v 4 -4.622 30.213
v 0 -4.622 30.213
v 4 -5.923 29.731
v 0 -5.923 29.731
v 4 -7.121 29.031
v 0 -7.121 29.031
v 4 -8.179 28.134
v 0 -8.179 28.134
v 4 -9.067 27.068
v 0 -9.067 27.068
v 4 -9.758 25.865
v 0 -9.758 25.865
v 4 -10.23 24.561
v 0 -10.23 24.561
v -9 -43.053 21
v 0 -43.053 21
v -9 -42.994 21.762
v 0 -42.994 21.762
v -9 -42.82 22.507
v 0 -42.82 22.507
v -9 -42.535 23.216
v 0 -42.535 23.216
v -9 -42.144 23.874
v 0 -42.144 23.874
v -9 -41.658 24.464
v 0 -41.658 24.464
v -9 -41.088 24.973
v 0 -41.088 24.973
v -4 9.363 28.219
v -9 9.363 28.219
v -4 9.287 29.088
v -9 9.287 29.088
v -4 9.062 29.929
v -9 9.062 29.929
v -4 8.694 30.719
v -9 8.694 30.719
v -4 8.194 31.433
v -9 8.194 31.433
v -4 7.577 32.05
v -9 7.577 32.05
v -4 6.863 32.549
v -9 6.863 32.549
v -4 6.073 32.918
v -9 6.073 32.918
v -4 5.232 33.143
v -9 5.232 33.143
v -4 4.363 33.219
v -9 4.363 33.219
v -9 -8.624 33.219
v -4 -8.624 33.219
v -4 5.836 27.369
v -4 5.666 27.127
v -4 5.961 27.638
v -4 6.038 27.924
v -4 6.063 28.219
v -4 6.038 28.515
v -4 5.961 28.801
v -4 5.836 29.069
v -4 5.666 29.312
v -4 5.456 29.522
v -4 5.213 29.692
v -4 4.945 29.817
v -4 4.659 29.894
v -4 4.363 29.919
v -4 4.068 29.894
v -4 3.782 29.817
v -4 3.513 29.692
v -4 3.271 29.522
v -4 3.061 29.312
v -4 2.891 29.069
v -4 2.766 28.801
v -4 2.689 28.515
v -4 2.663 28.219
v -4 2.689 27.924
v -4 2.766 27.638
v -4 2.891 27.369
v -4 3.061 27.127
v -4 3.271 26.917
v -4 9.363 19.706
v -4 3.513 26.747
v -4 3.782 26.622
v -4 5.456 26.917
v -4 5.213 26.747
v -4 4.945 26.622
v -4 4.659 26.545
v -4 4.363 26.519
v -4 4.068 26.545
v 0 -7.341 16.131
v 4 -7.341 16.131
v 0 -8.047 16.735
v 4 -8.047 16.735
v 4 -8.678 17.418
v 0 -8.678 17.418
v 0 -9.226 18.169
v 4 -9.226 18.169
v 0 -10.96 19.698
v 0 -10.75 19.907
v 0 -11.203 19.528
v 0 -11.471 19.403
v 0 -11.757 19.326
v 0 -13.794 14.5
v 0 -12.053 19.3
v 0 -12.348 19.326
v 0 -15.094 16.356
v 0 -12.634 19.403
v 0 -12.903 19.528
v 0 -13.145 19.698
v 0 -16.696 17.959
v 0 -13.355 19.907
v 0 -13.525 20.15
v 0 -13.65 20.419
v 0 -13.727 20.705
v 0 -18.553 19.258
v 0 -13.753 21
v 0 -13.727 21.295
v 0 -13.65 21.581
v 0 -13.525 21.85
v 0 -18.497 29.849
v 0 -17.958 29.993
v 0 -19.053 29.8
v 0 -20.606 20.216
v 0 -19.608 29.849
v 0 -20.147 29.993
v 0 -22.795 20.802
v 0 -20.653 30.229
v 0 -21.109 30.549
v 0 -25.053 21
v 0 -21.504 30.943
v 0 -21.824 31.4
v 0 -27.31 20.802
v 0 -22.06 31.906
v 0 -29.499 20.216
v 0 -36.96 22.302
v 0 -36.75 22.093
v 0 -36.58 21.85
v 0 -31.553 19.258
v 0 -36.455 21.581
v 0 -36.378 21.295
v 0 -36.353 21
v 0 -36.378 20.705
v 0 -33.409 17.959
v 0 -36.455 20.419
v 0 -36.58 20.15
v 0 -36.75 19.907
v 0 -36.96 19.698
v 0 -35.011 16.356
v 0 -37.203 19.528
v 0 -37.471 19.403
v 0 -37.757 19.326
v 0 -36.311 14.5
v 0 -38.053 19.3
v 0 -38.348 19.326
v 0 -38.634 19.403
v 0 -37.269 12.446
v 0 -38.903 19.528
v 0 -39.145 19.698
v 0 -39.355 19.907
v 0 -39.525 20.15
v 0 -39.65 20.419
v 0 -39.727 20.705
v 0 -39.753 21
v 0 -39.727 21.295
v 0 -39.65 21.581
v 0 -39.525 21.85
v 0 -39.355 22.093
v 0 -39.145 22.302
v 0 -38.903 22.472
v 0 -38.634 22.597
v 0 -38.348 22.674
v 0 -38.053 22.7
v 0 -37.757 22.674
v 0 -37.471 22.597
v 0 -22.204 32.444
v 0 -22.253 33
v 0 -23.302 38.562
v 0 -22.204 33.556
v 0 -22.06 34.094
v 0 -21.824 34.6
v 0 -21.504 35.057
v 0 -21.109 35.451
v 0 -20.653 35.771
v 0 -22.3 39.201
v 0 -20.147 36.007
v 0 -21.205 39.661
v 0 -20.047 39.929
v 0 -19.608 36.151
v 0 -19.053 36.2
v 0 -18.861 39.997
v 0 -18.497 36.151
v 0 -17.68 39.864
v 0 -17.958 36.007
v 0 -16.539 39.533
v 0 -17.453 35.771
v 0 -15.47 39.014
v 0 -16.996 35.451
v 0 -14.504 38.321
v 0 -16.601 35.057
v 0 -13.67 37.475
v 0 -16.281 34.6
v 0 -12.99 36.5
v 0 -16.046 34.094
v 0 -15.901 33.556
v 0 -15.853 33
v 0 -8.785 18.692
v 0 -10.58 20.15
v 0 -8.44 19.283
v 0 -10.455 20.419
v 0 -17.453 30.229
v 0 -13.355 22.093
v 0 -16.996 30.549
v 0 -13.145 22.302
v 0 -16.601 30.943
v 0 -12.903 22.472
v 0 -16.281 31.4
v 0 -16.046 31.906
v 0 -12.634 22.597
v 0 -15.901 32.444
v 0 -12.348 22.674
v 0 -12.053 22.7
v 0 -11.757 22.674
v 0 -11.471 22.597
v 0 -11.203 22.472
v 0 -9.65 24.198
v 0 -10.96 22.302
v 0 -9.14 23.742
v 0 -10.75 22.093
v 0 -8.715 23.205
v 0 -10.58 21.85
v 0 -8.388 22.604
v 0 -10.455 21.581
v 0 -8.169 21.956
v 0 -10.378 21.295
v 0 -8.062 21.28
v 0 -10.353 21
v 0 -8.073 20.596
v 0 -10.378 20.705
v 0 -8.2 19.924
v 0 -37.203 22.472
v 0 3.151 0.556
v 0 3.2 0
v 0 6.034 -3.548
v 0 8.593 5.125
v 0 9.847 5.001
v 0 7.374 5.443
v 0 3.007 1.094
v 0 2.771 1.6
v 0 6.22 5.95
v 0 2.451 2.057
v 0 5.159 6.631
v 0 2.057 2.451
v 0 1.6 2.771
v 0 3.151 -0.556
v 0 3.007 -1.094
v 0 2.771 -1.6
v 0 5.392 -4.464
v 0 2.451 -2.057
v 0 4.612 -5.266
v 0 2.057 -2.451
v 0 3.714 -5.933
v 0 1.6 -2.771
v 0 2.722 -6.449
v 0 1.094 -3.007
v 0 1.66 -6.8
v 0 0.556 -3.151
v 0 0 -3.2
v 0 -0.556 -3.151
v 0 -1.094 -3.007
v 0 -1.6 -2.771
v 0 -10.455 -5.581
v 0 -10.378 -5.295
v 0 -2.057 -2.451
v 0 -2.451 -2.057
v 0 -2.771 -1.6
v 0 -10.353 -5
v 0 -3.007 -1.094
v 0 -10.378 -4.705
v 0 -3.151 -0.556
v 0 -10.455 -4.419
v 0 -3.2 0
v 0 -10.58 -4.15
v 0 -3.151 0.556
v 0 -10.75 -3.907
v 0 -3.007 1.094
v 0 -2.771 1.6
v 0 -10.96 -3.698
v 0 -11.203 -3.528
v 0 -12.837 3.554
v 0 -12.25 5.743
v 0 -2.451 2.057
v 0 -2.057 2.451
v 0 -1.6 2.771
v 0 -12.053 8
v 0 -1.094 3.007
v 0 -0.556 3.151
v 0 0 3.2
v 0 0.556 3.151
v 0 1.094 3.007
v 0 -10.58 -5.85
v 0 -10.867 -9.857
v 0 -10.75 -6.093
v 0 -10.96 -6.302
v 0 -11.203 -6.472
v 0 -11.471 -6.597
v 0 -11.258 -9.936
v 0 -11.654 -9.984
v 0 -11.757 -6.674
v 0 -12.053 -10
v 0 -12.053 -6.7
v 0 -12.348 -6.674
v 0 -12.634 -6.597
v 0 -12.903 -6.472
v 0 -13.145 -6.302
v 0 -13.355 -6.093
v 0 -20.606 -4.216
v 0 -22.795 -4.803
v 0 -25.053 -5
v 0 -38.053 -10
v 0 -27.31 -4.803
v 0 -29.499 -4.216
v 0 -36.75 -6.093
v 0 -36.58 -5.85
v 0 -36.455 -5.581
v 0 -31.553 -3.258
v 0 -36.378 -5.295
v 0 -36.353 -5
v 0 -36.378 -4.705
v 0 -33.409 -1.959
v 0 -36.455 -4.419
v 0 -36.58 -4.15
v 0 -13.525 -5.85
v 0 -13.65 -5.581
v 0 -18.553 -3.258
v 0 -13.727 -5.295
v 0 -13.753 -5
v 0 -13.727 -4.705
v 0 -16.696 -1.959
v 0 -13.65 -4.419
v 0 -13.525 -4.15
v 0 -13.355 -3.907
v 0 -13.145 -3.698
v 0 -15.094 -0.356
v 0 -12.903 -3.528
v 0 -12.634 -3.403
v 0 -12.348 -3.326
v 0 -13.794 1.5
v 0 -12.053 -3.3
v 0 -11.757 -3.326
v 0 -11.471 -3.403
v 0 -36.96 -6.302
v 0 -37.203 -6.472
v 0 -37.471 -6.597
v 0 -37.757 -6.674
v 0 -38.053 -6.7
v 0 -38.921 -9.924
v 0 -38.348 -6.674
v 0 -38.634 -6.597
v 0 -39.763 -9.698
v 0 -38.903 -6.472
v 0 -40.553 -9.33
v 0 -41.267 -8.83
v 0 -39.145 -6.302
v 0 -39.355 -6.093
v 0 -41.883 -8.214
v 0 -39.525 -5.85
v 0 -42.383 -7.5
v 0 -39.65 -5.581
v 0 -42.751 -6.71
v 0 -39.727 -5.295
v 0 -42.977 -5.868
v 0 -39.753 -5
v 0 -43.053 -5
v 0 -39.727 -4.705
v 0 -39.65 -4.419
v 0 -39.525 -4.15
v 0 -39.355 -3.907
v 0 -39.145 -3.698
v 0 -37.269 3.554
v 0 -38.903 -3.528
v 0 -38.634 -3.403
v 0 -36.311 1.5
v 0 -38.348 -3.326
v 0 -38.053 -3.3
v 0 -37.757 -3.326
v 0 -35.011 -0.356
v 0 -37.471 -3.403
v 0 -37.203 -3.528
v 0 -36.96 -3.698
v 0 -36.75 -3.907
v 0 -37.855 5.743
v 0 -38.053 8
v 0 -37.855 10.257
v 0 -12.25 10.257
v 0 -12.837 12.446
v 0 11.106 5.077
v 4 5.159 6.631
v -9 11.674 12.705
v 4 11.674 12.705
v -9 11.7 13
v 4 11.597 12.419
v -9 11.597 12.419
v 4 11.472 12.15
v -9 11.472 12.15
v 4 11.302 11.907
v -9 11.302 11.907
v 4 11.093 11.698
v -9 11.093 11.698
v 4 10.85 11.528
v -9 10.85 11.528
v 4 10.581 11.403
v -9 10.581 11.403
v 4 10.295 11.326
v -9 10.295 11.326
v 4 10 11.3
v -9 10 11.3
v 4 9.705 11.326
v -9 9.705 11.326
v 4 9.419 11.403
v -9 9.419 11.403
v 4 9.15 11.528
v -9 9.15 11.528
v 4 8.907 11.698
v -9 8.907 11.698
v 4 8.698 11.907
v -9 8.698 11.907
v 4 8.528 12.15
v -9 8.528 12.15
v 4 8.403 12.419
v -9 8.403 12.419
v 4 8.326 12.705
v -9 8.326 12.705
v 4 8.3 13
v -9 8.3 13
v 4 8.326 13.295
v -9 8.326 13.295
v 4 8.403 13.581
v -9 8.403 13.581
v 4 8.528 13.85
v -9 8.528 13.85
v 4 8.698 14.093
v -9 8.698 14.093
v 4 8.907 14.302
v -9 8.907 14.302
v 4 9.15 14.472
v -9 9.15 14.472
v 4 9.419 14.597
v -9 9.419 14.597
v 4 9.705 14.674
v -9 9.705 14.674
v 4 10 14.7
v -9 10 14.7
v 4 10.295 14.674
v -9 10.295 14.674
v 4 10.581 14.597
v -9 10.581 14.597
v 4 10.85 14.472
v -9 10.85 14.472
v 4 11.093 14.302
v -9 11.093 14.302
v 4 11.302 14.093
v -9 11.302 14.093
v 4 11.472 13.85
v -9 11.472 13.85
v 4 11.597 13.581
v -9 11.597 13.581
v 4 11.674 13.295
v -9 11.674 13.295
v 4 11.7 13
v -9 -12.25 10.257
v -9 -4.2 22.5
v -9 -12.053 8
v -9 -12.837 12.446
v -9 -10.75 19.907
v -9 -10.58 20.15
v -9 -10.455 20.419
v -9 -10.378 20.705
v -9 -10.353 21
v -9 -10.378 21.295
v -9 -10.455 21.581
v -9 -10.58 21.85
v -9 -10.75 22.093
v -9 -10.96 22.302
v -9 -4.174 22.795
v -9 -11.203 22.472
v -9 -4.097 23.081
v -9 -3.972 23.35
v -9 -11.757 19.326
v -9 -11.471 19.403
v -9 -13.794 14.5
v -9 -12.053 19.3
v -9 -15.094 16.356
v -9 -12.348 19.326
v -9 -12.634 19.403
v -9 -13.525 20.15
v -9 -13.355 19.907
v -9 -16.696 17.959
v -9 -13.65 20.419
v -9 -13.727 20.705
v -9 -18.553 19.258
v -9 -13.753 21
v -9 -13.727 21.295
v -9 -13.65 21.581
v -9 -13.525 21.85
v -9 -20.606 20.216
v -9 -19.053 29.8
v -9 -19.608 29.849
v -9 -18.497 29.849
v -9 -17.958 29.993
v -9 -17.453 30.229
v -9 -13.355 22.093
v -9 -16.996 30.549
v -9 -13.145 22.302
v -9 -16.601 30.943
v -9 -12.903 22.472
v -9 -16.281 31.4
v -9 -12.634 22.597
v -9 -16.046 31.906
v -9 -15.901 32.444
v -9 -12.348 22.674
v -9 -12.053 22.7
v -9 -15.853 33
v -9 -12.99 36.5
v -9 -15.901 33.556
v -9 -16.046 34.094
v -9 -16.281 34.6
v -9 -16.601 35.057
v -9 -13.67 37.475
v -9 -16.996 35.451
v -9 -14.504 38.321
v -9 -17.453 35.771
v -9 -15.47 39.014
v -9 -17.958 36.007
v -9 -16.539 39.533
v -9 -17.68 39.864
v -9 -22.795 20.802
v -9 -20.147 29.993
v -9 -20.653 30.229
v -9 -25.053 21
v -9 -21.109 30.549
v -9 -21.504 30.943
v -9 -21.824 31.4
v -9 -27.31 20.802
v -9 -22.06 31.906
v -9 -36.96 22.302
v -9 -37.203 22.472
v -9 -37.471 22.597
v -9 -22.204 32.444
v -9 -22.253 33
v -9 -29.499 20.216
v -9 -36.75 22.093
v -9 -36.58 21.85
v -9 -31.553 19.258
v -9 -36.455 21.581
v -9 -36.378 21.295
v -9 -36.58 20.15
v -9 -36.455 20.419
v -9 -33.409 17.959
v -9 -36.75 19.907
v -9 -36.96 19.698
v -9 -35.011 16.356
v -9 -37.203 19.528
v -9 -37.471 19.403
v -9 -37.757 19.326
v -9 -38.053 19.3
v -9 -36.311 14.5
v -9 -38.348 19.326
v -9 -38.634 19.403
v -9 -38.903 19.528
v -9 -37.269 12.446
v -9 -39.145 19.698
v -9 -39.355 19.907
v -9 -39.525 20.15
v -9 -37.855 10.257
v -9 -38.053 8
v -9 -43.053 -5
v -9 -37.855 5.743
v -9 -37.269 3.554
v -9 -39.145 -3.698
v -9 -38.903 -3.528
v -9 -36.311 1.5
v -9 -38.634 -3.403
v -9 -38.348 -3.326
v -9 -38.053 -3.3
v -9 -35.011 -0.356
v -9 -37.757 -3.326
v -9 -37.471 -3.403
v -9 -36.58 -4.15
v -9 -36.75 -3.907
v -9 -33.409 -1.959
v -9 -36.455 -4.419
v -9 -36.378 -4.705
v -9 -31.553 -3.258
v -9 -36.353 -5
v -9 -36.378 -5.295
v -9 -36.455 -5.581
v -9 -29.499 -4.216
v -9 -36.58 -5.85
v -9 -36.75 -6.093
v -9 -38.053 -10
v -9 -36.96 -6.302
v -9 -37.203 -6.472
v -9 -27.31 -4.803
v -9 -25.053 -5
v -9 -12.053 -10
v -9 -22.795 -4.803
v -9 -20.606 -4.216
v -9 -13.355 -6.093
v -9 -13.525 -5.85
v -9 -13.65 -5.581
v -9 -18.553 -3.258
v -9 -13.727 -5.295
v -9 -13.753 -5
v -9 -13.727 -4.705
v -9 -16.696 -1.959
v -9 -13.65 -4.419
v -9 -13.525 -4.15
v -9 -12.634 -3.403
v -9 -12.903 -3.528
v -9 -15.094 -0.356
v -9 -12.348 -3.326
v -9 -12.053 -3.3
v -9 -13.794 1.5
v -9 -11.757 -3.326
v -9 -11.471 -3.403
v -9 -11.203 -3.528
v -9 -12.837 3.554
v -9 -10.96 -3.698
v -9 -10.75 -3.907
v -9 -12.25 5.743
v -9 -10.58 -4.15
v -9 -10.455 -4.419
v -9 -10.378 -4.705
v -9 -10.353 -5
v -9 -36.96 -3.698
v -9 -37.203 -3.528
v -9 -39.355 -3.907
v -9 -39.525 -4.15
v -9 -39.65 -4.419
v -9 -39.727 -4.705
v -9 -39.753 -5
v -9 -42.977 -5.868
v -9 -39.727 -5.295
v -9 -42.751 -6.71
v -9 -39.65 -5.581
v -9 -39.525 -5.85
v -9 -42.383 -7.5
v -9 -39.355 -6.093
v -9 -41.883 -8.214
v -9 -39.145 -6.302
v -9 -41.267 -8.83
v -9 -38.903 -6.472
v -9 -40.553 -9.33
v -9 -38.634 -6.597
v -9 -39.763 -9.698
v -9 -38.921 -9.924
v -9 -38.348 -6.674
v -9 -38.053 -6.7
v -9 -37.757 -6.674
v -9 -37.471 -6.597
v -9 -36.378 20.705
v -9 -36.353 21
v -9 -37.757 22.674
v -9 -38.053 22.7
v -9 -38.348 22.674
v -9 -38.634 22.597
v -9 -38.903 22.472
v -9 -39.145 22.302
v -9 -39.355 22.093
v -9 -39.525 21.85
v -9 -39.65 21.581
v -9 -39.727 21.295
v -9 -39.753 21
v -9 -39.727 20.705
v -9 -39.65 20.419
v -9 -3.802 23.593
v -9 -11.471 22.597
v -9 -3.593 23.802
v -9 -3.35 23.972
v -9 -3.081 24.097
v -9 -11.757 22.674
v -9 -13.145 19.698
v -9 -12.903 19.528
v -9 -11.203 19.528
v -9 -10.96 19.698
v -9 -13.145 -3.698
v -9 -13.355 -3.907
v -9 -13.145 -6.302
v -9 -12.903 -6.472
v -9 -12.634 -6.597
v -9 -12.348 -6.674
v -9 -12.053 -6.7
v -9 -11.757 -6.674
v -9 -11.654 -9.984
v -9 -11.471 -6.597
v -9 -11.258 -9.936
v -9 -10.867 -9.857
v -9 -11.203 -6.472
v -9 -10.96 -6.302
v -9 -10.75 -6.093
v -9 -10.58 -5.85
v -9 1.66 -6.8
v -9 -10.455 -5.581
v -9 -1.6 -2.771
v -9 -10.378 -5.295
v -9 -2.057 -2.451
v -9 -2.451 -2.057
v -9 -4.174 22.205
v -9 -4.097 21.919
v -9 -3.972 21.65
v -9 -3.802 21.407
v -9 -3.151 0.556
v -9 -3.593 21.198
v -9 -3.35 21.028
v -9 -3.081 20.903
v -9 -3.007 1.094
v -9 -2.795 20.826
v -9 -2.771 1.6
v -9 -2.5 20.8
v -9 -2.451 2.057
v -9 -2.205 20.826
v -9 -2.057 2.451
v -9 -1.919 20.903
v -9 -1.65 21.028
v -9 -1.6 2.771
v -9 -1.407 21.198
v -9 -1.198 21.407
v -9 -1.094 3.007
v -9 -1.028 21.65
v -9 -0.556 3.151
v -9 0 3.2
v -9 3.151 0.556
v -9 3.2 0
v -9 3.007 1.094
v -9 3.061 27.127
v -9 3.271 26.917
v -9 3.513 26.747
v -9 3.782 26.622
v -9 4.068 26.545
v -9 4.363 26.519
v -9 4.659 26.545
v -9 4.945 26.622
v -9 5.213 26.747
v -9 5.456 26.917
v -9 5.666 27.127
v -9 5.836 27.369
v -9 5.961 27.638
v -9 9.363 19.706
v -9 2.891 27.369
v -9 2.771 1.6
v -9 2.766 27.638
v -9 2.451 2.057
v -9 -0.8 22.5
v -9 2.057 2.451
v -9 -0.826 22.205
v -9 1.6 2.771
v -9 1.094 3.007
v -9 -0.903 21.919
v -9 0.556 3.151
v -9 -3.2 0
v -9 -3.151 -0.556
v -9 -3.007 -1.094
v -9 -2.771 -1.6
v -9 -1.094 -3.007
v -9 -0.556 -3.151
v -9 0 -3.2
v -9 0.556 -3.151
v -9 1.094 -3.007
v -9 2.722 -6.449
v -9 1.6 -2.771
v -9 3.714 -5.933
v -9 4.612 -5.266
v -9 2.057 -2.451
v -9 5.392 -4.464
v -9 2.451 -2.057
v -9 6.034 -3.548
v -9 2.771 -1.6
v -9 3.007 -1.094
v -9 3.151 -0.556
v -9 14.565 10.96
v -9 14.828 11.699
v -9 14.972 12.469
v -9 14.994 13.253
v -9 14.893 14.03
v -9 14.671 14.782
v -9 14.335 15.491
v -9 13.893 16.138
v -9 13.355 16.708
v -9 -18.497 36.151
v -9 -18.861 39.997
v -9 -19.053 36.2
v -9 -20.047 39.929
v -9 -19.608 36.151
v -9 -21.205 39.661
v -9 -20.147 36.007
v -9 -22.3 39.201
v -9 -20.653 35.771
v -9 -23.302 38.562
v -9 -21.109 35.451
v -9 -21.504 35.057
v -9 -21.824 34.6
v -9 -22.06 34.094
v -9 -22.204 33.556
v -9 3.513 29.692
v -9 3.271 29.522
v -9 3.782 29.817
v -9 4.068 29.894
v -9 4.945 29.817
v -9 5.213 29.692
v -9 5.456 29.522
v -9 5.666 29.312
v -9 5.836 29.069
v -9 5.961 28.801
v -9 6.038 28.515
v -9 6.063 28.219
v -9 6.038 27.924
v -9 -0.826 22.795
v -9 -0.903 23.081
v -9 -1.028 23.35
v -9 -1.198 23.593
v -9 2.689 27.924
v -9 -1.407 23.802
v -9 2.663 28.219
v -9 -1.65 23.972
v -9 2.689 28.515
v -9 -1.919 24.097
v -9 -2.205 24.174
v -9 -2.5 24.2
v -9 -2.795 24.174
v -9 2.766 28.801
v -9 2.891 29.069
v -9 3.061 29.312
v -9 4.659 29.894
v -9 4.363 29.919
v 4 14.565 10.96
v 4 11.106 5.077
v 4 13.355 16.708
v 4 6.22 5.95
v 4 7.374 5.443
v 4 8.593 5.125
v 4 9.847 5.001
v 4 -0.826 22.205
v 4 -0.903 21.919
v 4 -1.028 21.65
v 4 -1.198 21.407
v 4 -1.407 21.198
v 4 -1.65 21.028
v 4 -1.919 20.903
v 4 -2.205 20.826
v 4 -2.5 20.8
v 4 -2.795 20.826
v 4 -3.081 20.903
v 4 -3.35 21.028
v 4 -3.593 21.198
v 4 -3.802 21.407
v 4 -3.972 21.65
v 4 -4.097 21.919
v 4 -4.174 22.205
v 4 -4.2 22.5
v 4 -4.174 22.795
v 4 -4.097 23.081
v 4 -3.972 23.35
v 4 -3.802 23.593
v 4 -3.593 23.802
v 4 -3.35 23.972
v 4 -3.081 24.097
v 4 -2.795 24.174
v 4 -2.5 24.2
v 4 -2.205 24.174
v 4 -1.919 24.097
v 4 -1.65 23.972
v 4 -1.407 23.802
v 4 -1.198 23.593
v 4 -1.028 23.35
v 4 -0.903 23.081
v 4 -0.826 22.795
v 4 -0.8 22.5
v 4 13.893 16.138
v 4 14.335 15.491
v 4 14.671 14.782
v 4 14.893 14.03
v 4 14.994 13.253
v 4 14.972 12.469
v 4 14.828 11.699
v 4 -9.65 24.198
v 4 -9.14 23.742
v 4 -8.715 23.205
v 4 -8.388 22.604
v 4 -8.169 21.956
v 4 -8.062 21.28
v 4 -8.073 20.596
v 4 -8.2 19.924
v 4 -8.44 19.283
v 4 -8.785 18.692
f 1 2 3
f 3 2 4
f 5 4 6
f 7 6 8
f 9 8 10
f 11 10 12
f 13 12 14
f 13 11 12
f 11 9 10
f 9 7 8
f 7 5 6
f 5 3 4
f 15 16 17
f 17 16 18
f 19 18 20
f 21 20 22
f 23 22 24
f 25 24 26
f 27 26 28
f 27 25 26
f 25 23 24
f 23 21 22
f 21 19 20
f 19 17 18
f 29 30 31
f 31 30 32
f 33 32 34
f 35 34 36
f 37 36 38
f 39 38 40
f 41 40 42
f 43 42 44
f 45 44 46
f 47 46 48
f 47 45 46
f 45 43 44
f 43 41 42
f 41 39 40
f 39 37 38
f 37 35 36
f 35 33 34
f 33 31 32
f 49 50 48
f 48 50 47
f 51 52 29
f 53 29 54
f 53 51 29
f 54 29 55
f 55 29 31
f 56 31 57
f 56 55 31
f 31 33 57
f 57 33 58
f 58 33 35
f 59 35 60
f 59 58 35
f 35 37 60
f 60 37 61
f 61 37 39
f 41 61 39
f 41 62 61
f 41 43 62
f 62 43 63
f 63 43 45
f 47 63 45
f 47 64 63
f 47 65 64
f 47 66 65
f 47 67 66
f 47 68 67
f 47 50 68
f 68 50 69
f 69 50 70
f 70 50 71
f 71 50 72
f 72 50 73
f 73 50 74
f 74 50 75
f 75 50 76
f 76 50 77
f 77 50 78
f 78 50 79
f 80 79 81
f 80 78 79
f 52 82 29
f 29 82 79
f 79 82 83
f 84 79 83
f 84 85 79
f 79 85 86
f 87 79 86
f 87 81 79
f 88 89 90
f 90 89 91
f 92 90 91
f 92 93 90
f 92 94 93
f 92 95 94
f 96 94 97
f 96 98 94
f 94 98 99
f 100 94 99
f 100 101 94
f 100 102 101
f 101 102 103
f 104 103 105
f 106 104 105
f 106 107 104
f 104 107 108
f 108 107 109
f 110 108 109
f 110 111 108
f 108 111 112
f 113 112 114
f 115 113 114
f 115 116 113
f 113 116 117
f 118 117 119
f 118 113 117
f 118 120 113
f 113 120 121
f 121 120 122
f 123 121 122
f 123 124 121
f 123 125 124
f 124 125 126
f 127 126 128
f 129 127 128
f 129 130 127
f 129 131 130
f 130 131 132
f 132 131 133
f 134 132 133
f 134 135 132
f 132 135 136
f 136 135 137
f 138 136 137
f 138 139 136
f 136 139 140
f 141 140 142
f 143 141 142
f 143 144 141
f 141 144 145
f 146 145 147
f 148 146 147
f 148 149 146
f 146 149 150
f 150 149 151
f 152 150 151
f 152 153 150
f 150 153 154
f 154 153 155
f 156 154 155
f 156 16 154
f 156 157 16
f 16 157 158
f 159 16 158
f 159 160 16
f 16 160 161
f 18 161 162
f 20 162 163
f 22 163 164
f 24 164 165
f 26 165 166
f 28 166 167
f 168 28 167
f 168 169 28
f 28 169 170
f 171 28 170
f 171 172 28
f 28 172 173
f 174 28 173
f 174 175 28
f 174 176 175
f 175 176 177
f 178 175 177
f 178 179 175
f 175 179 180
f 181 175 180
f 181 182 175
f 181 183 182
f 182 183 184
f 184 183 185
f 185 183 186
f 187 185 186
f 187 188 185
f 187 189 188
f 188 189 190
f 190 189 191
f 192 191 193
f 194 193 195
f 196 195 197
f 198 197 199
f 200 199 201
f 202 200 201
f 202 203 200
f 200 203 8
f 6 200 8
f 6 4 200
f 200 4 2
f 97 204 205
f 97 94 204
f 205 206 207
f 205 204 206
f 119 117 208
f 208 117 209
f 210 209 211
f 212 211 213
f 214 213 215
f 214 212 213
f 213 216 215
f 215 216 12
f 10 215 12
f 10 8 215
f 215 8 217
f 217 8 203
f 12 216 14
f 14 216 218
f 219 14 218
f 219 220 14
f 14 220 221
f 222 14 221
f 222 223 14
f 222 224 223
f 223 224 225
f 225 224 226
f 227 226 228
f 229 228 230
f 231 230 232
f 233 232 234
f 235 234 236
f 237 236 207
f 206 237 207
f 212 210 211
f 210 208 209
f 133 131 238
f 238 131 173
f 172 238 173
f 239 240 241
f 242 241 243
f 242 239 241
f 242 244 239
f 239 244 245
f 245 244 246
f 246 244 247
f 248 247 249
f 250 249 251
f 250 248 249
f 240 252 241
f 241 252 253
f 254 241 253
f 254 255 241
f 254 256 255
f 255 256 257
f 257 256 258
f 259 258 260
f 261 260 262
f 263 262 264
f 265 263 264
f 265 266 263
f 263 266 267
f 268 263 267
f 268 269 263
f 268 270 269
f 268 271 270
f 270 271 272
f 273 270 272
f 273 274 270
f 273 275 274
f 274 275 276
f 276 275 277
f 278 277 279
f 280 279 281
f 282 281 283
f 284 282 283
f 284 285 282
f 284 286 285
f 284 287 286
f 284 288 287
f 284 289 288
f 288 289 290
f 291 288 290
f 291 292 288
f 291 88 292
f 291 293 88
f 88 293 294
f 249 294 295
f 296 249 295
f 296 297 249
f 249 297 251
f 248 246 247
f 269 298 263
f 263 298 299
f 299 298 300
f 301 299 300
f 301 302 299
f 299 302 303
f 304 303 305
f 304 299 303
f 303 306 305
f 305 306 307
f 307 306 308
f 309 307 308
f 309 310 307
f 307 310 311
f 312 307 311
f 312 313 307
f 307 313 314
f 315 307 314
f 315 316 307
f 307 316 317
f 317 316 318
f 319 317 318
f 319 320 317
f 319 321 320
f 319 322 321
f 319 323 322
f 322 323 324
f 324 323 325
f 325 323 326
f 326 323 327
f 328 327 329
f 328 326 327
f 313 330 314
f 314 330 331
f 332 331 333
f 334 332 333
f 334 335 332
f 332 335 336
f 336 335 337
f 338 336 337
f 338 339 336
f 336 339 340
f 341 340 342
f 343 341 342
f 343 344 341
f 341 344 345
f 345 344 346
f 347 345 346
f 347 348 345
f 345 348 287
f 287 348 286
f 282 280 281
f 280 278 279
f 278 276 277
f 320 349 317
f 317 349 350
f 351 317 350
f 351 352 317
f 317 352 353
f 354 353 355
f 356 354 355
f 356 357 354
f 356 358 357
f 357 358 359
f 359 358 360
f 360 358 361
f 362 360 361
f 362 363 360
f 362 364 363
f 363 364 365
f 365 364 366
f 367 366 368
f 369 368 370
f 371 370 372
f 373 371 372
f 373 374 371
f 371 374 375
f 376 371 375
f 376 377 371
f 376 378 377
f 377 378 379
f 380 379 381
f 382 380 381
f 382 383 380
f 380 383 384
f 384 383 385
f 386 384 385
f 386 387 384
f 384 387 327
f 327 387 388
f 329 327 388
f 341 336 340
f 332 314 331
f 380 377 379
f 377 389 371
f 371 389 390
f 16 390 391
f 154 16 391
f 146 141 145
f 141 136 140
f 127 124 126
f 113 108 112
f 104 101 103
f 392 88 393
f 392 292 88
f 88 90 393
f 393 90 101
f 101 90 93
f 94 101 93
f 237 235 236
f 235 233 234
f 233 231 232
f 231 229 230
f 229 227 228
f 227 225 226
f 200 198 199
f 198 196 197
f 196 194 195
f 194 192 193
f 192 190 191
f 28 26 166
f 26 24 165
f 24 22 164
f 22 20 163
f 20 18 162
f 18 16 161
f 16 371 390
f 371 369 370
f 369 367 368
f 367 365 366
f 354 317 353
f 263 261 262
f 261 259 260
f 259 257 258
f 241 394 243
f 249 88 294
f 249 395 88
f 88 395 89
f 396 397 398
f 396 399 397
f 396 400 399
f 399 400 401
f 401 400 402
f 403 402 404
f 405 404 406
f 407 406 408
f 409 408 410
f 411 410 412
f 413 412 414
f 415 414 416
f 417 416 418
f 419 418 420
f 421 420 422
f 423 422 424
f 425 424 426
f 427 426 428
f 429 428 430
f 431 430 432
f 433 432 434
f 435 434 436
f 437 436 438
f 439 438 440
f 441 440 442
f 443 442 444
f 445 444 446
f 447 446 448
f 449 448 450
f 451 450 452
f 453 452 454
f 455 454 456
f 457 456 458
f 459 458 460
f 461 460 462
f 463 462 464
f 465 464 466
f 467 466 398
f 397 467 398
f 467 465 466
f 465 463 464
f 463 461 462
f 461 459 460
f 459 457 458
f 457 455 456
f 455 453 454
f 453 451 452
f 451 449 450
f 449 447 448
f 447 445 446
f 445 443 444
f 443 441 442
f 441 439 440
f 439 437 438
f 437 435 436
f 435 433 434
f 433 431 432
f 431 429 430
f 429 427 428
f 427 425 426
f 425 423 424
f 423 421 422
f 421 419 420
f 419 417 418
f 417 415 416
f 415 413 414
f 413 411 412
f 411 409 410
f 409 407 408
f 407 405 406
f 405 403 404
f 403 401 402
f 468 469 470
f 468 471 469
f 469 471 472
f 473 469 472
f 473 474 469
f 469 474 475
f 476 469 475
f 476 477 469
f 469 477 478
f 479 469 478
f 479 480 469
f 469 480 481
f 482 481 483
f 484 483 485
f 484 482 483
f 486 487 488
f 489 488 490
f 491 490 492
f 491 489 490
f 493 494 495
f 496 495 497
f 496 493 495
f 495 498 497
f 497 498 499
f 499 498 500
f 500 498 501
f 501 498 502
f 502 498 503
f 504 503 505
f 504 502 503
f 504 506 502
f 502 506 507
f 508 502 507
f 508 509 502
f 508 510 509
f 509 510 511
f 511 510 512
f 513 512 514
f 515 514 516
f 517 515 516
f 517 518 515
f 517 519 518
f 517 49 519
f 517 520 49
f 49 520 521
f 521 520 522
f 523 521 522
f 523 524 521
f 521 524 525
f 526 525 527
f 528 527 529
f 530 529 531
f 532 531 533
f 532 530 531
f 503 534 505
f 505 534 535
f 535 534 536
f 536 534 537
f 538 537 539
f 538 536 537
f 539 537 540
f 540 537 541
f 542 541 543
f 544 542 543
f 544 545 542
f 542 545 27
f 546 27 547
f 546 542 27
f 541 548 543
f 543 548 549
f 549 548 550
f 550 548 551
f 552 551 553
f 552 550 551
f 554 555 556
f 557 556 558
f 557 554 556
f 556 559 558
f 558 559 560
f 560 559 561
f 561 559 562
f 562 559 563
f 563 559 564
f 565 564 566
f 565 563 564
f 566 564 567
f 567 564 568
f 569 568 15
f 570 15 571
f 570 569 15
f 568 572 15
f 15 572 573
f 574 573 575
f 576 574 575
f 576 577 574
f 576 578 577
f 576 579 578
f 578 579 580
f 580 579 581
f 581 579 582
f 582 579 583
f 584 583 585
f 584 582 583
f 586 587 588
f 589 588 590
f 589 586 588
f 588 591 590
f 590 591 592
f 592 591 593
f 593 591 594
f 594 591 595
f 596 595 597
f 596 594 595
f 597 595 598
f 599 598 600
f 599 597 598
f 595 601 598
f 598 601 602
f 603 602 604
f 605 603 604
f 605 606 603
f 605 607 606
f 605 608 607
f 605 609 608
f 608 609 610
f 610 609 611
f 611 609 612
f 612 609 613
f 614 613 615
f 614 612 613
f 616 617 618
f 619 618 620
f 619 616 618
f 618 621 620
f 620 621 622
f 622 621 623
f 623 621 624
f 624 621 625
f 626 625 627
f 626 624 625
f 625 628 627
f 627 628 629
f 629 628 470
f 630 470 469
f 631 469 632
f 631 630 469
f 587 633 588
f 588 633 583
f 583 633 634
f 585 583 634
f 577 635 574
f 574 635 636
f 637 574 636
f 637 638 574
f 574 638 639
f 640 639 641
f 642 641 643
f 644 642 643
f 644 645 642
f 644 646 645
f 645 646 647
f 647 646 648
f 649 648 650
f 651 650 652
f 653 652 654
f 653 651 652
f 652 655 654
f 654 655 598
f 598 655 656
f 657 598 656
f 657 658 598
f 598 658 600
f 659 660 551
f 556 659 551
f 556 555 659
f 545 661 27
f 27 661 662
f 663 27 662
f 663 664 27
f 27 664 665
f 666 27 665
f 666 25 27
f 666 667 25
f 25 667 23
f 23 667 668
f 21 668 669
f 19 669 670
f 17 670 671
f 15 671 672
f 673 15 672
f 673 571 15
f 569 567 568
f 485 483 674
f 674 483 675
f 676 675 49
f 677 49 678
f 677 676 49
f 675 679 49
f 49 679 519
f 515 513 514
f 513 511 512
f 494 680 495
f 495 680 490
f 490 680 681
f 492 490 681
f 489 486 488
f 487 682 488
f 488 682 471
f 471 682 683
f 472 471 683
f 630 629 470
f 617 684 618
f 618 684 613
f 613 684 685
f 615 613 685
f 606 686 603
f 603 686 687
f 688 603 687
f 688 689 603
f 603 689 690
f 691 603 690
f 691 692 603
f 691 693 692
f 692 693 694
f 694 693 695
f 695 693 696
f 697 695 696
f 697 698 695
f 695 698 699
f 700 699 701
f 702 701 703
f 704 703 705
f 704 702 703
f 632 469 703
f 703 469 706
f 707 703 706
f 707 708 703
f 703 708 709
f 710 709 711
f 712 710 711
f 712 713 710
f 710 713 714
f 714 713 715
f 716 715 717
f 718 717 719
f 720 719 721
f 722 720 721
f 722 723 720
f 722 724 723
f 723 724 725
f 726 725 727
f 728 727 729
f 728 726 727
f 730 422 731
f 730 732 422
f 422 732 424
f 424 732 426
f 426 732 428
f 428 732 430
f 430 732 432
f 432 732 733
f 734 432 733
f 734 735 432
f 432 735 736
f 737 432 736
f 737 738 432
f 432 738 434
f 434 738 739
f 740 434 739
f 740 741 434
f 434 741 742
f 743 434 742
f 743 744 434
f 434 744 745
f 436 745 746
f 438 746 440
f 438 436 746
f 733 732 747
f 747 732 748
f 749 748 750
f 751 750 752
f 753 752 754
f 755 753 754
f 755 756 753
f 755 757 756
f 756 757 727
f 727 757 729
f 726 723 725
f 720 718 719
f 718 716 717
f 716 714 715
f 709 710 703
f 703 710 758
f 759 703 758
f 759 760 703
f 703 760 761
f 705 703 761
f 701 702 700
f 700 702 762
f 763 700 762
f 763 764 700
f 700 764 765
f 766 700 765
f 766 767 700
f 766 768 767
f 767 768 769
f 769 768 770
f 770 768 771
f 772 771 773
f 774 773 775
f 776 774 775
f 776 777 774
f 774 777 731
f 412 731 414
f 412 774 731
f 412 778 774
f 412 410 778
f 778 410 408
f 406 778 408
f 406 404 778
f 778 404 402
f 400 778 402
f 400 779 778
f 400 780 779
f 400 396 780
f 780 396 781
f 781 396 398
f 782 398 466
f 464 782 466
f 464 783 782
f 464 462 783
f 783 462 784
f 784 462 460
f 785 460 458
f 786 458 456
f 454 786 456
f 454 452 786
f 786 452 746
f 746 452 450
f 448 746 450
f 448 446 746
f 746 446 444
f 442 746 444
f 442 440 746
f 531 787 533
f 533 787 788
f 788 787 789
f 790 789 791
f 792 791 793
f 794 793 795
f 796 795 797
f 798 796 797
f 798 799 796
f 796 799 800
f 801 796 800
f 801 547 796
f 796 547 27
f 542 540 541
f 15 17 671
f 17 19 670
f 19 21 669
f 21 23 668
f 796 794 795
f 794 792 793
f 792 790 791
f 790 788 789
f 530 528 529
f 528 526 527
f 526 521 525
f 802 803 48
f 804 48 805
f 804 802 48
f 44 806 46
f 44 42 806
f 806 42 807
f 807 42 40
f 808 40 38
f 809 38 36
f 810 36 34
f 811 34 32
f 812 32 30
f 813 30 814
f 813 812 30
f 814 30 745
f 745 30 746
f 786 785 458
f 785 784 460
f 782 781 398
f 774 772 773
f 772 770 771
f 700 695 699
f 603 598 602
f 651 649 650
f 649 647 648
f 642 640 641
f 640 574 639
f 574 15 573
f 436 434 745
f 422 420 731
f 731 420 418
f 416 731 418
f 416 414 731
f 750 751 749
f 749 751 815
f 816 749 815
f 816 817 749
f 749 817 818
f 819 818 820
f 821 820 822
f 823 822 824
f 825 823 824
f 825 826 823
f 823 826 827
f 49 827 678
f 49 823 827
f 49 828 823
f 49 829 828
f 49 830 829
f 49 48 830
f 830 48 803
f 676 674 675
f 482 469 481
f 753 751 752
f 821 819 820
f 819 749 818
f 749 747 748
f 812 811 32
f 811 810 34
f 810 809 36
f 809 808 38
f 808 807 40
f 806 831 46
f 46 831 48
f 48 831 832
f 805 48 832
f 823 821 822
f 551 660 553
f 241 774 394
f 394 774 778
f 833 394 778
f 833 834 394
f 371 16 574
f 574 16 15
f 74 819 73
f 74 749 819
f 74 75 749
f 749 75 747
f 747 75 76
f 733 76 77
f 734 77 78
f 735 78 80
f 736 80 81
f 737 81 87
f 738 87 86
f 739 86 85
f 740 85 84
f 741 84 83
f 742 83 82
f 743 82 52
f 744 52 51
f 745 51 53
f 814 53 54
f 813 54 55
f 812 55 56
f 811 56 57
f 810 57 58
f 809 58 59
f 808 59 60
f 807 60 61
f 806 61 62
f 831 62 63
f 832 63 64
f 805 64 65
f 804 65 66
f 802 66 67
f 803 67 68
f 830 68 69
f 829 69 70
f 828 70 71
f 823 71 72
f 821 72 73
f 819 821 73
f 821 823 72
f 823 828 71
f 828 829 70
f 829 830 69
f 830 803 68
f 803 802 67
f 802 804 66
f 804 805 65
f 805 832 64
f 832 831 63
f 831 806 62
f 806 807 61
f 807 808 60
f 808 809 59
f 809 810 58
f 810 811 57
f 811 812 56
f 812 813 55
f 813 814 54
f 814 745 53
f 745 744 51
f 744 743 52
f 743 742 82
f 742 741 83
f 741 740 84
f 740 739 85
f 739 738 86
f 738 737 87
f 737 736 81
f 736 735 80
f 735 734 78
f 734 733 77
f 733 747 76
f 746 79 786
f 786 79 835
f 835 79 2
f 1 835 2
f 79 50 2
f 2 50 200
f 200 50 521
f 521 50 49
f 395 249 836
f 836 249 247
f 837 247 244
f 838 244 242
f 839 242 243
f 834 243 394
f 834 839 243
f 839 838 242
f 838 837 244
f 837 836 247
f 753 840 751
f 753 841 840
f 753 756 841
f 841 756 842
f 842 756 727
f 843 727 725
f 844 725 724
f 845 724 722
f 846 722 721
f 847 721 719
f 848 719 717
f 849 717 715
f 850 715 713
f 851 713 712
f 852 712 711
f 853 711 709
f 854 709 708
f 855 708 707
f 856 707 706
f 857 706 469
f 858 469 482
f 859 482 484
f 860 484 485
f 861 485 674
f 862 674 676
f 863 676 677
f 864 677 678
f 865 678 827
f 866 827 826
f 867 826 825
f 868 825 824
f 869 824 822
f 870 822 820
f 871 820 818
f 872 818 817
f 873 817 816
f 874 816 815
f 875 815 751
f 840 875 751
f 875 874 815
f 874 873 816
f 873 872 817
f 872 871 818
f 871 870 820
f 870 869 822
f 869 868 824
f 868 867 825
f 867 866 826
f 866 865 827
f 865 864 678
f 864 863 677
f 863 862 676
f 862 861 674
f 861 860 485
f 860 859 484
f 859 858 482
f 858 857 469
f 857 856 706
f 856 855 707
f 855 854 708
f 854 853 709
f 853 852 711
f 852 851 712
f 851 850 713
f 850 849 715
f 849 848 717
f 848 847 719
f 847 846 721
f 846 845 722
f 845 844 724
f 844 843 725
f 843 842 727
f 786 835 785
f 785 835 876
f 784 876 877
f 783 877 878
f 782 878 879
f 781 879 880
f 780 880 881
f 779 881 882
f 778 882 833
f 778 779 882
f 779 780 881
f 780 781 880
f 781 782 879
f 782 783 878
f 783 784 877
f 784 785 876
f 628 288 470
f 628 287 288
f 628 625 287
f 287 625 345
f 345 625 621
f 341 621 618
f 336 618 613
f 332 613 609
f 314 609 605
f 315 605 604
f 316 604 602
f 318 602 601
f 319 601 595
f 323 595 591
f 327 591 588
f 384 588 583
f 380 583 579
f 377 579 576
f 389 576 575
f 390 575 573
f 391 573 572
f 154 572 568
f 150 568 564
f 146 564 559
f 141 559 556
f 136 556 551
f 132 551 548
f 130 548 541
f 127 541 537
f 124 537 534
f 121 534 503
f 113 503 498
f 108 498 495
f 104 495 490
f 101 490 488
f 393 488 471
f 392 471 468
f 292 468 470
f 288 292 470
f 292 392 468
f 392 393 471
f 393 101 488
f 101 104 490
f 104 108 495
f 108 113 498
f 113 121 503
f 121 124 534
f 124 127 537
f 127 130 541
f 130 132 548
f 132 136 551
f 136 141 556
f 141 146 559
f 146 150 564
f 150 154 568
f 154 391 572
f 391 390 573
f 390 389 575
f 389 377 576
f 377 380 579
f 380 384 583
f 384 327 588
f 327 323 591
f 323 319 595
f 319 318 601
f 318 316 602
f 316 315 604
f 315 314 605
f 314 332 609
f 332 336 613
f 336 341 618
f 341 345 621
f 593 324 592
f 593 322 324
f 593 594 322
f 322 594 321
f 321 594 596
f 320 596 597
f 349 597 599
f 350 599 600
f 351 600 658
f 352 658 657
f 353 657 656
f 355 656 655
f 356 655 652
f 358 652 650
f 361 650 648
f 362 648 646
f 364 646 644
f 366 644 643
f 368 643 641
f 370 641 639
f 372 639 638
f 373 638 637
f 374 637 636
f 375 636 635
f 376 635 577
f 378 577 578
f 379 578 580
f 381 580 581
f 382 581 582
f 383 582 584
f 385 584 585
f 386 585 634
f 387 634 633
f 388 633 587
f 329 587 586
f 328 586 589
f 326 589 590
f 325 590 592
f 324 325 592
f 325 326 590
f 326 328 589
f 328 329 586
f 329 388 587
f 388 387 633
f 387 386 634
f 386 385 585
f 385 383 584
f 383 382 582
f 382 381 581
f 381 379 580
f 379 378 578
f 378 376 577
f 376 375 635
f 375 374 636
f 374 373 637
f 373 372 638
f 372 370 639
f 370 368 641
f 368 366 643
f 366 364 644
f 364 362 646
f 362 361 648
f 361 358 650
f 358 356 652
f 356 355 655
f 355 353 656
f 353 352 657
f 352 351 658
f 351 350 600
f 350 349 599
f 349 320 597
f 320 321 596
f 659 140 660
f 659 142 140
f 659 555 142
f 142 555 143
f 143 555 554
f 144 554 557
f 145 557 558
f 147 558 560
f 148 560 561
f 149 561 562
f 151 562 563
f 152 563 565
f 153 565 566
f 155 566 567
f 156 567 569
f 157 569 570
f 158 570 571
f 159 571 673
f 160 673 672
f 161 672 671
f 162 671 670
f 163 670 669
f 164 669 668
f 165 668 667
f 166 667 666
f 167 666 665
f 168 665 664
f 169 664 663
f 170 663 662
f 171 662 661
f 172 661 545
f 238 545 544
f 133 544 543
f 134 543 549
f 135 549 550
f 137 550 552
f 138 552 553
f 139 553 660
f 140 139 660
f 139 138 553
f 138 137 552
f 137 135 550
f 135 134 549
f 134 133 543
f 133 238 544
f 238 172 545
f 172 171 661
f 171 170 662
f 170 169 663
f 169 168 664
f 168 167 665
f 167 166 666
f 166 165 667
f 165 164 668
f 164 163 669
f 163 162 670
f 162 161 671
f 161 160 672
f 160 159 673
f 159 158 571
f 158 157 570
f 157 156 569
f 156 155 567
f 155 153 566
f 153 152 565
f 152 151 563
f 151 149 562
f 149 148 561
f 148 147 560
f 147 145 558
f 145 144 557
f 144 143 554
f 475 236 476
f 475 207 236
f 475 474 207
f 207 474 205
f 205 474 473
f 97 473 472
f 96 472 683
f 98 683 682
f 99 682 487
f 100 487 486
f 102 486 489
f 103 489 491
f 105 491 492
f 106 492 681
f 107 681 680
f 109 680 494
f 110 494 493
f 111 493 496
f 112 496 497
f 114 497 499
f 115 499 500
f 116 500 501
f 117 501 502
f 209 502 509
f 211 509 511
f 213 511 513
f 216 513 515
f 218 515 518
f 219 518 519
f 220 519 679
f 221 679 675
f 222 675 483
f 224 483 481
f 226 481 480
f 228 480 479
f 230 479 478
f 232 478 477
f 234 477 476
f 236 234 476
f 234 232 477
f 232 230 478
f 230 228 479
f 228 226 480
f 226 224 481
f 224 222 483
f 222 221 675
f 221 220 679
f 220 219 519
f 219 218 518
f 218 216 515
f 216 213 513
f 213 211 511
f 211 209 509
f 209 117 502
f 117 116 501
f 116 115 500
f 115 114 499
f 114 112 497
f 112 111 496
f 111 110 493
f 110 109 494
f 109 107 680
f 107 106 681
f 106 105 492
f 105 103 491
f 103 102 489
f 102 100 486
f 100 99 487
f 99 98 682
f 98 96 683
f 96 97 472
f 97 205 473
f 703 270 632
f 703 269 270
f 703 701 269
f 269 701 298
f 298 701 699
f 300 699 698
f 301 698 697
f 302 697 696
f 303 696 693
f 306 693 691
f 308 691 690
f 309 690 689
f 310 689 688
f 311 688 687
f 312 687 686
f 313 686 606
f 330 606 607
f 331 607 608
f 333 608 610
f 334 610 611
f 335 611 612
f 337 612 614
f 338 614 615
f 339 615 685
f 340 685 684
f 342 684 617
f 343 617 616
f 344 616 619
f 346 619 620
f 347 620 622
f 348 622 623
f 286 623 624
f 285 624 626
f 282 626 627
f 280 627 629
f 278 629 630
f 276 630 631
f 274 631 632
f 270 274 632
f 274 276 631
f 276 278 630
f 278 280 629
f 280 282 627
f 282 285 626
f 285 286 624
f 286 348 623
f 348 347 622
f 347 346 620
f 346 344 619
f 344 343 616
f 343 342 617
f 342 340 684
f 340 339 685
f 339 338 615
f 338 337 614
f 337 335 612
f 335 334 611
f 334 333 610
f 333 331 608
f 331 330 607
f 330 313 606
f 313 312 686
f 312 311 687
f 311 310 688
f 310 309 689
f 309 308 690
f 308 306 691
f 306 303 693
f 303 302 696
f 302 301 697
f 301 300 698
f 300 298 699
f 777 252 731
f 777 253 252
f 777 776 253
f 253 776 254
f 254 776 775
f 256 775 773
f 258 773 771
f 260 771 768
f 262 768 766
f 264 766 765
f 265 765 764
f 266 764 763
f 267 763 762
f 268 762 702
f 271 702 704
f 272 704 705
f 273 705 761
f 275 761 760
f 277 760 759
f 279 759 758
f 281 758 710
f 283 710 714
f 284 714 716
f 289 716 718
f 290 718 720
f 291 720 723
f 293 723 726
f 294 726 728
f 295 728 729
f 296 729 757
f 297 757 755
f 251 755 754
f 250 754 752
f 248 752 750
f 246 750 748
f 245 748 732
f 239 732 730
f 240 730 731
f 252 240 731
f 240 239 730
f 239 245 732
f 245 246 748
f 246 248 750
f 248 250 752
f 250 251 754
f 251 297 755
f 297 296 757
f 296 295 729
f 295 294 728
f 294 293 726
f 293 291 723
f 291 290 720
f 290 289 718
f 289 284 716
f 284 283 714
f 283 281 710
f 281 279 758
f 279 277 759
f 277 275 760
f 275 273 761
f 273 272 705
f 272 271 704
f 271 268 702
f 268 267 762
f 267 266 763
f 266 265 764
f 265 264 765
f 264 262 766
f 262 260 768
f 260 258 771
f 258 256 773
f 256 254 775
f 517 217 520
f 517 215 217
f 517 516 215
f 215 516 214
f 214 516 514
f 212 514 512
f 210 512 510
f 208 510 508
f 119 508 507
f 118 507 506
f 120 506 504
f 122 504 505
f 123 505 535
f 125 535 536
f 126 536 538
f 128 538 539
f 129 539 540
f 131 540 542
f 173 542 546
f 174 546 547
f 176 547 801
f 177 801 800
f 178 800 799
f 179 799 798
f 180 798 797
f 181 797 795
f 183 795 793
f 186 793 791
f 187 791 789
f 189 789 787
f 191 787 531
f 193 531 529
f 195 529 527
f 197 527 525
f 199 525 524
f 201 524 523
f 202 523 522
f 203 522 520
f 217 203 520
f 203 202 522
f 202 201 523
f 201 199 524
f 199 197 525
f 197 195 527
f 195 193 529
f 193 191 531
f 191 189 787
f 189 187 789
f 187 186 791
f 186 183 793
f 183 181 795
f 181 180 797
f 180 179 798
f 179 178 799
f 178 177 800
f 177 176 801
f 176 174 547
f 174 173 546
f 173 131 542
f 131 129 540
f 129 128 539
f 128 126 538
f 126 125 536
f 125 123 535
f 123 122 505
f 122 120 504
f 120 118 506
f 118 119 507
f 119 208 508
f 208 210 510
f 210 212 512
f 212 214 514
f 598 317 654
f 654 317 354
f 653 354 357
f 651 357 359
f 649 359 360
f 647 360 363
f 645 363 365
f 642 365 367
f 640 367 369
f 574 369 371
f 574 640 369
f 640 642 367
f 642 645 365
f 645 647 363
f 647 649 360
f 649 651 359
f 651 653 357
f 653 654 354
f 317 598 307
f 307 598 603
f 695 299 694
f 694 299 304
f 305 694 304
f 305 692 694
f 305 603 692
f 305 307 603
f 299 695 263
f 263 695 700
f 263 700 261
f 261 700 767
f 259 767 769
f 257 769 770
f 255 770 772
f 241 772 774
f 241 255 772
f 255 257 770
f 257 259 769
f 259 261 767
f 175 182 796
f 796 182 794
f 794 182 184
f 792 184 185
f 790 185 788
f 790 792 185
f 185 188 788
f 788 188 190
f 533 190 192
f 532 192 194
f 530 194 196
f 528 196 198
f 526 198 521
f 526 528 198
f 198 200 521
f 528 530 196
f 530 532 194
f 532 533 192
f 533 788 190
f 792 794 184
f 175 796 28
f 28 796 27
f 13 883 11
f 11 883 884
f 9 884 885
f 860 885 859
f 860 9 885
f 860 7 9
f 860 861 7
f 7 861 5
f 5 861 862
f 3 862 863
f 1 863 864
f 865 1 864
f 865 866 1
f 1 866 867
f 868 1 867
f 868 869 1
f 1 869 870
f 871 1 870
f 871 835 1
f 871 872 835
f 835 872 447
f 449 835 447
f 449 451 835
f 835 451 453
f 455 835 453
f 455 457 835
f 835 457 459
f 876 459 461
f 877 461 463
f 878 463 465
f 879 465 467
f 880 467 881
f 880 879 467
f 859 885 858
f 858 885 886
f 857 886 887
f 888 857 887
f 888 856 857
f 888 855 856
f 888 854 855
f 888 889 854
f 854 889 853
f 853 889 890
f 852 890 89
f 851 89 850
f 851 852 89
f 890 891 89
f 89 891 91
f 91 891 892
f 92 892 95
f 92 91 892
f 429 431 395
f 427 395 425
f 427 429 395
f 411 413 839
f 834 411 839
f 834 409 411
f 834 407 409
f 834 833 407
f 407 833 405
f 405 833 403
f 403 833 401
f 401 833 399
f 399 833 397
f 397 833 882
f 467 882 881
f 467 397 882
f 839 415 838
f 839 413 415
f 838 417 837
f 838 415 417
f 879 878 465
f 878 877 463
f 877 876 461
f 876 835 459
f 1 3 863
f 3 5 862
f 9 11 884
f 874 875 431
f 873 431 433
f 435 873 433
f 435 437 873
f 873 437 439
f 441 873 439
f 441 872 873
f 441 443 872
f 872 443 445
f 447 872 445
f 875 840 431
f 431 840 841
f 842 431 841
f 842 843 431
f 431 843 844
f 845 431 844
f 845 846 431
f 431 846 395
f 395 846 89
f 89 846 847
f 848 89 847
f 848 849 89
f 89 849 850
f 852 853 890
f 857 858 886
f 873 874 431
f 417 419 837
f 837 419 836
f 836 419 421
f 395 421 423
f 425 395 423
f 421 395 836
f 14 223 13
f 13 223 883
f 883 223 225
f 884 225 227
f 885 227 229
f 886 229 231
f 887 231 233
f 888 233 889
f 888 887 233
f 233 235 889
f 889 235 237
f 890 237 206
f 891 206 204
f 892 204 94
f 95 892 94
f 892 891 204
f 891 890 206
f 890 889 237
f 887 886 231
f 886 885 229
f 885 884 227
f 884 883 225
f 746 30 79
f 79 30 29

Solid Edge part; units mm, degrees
sketch "Sketch1" plane through (0, 0, 0) normal (1, 0, 0) x (0, 1, 0)
  line L0 (-41.0882, 24.973) -> (-23.3024, 38.5623)
  line L1 (-12.9904, 36.5) -> (6.0622, 3.5)
  line L2 (1.6596, -6.8004) -> (-10.8671, -9.8574)
  line L3 (-12.0526, -10) -> (-38.0526, -10)
  line L4 (-43.0526, -5) -> (-43.0526, 21)
  arc A0 (-23.3024, 38.5623) -> (-12.9904, 36.5) centre (-19.0526, 33) cw
  arc A1 (6.0622, 3.5) -> (1.6596, -6.8004) centre (0, 0) cw
  arc A2 (-10.8671, -9.8574) -> (-12.0526, -10) centre (-12.0526, -5) cw
  arc A3 (-38.0526, -10) -> (-43.0526, -5) centre (-38.0526, -5) cw
  arc A4 (-43.0526, 21) -> (-41.0882, 24.973) centre (-38.0526, 21) cw
  circle A5 centre (-19.0526, 33) radius 3.2
  circle A6 centre (0, 0) radius 3.2
  circle A7 centre (-12.0526, -5) radius 1.7
  circle A8 centre (-12.0526, 21) radius 1.7
  circle A9 centre (-38.0526, 21) radius 1.7
  circle A10 centre (-38.0526, -5) radius 1.7
  circle A11 centre (-25.0526, 8) radius 13
extrude "Protrusion1" add sketch "Sketch1" against normal blind 9
sketch "Sketch2" plane through (0, -18.0263, 15) normal (1, 0, 0) x (0, 1, 0)
  circle A0 centre (15.5263, 7.5) radius 1.7
  arc A1 (24.0885, -11.5) -> (24.0604, -18.5481) centre (18.0263, -15) cw
  line L0 (24.0604, -18.5481) -> (32.5912, -4.04)
  line L1 (5.0359, 21.5) -> (31.3808, 1.7077)
  line L2 (5.0359, 21.5) -> (24.0885, -11.5)
  arc A2 (32.5912, -4.04) -> (31.3808, 1.7077) centre (28.0263, -2) ccw
  circle A3 centre (28.0263, -2) radius 1.7
extrude "ExtrudedProtrusion_2" add sketch "Sketch2" against normal blind 9
sketch "Sketch3" plane through (0, -14.0263, 15) normal (1, 0, 0) x (0, 1, 0)
  line L0 (6.6856, 1.1307) -> (19.1856, -8.3693)
  line L1 (25.1318, -9.9232) -> (28.5912, -4.04)
  arc A0 (28.5912, -4.04) -> (27.3808, 1.7077) centre (24.0263, -2) ccw
  line L2 (27.3808, 1.7077) -> (9.4039, 15.2133)
  arc A1 (9.4039, 15.2133) -> (6.6856, 1.1307) centre (11.5263, 7.5) ccw
  arc A2 (19.1856, -8.3693) -> (25.1318, -9.9232) centre (24.0263, -2) ccw
  circle A3 centre (11.5263, 7.5) radius 1.7
  circle A4 centre (24.0263, -2) radius 1.7
extrude "ExtrudedProtrusion_4" add sketch "Sketch3" along normal blind 4
sketch "Sketch4" plane through (0, -15.9735, 15) normal (1, 0, 0) x (0, 0, 1)
  circle A0 centre (6, -3.9209) radius 4
extrude "Cutout1" cut sketch "Sketch4" along normal through all
sketch "Sketch5" plane through (-9, -14.0263, 15) normal (-1, 0, 0) x (0, -1, 0)
  line L0 (-23.3897, 4.7061) -> (-5.4027, 18.2193)
  line L1 (-18.3897, 18.2193) -> (-5.4027, 18.2193)
  line L2 (-23.3897, 13.2193) -> (-23.3897, 4.7061)
  arc A0 (-18.3897, 18.2193) -> (-23.3897, 13.2193) centre (-18.3897, 13.2193) ccw
  circle A1 centre (-18.3897, 13.2193) radius 1.7
extrude "ExtrudedProtrusion_5" add sketch "Sketch5" against normal blind 5
properties material "ABS Plastic, high impact"
